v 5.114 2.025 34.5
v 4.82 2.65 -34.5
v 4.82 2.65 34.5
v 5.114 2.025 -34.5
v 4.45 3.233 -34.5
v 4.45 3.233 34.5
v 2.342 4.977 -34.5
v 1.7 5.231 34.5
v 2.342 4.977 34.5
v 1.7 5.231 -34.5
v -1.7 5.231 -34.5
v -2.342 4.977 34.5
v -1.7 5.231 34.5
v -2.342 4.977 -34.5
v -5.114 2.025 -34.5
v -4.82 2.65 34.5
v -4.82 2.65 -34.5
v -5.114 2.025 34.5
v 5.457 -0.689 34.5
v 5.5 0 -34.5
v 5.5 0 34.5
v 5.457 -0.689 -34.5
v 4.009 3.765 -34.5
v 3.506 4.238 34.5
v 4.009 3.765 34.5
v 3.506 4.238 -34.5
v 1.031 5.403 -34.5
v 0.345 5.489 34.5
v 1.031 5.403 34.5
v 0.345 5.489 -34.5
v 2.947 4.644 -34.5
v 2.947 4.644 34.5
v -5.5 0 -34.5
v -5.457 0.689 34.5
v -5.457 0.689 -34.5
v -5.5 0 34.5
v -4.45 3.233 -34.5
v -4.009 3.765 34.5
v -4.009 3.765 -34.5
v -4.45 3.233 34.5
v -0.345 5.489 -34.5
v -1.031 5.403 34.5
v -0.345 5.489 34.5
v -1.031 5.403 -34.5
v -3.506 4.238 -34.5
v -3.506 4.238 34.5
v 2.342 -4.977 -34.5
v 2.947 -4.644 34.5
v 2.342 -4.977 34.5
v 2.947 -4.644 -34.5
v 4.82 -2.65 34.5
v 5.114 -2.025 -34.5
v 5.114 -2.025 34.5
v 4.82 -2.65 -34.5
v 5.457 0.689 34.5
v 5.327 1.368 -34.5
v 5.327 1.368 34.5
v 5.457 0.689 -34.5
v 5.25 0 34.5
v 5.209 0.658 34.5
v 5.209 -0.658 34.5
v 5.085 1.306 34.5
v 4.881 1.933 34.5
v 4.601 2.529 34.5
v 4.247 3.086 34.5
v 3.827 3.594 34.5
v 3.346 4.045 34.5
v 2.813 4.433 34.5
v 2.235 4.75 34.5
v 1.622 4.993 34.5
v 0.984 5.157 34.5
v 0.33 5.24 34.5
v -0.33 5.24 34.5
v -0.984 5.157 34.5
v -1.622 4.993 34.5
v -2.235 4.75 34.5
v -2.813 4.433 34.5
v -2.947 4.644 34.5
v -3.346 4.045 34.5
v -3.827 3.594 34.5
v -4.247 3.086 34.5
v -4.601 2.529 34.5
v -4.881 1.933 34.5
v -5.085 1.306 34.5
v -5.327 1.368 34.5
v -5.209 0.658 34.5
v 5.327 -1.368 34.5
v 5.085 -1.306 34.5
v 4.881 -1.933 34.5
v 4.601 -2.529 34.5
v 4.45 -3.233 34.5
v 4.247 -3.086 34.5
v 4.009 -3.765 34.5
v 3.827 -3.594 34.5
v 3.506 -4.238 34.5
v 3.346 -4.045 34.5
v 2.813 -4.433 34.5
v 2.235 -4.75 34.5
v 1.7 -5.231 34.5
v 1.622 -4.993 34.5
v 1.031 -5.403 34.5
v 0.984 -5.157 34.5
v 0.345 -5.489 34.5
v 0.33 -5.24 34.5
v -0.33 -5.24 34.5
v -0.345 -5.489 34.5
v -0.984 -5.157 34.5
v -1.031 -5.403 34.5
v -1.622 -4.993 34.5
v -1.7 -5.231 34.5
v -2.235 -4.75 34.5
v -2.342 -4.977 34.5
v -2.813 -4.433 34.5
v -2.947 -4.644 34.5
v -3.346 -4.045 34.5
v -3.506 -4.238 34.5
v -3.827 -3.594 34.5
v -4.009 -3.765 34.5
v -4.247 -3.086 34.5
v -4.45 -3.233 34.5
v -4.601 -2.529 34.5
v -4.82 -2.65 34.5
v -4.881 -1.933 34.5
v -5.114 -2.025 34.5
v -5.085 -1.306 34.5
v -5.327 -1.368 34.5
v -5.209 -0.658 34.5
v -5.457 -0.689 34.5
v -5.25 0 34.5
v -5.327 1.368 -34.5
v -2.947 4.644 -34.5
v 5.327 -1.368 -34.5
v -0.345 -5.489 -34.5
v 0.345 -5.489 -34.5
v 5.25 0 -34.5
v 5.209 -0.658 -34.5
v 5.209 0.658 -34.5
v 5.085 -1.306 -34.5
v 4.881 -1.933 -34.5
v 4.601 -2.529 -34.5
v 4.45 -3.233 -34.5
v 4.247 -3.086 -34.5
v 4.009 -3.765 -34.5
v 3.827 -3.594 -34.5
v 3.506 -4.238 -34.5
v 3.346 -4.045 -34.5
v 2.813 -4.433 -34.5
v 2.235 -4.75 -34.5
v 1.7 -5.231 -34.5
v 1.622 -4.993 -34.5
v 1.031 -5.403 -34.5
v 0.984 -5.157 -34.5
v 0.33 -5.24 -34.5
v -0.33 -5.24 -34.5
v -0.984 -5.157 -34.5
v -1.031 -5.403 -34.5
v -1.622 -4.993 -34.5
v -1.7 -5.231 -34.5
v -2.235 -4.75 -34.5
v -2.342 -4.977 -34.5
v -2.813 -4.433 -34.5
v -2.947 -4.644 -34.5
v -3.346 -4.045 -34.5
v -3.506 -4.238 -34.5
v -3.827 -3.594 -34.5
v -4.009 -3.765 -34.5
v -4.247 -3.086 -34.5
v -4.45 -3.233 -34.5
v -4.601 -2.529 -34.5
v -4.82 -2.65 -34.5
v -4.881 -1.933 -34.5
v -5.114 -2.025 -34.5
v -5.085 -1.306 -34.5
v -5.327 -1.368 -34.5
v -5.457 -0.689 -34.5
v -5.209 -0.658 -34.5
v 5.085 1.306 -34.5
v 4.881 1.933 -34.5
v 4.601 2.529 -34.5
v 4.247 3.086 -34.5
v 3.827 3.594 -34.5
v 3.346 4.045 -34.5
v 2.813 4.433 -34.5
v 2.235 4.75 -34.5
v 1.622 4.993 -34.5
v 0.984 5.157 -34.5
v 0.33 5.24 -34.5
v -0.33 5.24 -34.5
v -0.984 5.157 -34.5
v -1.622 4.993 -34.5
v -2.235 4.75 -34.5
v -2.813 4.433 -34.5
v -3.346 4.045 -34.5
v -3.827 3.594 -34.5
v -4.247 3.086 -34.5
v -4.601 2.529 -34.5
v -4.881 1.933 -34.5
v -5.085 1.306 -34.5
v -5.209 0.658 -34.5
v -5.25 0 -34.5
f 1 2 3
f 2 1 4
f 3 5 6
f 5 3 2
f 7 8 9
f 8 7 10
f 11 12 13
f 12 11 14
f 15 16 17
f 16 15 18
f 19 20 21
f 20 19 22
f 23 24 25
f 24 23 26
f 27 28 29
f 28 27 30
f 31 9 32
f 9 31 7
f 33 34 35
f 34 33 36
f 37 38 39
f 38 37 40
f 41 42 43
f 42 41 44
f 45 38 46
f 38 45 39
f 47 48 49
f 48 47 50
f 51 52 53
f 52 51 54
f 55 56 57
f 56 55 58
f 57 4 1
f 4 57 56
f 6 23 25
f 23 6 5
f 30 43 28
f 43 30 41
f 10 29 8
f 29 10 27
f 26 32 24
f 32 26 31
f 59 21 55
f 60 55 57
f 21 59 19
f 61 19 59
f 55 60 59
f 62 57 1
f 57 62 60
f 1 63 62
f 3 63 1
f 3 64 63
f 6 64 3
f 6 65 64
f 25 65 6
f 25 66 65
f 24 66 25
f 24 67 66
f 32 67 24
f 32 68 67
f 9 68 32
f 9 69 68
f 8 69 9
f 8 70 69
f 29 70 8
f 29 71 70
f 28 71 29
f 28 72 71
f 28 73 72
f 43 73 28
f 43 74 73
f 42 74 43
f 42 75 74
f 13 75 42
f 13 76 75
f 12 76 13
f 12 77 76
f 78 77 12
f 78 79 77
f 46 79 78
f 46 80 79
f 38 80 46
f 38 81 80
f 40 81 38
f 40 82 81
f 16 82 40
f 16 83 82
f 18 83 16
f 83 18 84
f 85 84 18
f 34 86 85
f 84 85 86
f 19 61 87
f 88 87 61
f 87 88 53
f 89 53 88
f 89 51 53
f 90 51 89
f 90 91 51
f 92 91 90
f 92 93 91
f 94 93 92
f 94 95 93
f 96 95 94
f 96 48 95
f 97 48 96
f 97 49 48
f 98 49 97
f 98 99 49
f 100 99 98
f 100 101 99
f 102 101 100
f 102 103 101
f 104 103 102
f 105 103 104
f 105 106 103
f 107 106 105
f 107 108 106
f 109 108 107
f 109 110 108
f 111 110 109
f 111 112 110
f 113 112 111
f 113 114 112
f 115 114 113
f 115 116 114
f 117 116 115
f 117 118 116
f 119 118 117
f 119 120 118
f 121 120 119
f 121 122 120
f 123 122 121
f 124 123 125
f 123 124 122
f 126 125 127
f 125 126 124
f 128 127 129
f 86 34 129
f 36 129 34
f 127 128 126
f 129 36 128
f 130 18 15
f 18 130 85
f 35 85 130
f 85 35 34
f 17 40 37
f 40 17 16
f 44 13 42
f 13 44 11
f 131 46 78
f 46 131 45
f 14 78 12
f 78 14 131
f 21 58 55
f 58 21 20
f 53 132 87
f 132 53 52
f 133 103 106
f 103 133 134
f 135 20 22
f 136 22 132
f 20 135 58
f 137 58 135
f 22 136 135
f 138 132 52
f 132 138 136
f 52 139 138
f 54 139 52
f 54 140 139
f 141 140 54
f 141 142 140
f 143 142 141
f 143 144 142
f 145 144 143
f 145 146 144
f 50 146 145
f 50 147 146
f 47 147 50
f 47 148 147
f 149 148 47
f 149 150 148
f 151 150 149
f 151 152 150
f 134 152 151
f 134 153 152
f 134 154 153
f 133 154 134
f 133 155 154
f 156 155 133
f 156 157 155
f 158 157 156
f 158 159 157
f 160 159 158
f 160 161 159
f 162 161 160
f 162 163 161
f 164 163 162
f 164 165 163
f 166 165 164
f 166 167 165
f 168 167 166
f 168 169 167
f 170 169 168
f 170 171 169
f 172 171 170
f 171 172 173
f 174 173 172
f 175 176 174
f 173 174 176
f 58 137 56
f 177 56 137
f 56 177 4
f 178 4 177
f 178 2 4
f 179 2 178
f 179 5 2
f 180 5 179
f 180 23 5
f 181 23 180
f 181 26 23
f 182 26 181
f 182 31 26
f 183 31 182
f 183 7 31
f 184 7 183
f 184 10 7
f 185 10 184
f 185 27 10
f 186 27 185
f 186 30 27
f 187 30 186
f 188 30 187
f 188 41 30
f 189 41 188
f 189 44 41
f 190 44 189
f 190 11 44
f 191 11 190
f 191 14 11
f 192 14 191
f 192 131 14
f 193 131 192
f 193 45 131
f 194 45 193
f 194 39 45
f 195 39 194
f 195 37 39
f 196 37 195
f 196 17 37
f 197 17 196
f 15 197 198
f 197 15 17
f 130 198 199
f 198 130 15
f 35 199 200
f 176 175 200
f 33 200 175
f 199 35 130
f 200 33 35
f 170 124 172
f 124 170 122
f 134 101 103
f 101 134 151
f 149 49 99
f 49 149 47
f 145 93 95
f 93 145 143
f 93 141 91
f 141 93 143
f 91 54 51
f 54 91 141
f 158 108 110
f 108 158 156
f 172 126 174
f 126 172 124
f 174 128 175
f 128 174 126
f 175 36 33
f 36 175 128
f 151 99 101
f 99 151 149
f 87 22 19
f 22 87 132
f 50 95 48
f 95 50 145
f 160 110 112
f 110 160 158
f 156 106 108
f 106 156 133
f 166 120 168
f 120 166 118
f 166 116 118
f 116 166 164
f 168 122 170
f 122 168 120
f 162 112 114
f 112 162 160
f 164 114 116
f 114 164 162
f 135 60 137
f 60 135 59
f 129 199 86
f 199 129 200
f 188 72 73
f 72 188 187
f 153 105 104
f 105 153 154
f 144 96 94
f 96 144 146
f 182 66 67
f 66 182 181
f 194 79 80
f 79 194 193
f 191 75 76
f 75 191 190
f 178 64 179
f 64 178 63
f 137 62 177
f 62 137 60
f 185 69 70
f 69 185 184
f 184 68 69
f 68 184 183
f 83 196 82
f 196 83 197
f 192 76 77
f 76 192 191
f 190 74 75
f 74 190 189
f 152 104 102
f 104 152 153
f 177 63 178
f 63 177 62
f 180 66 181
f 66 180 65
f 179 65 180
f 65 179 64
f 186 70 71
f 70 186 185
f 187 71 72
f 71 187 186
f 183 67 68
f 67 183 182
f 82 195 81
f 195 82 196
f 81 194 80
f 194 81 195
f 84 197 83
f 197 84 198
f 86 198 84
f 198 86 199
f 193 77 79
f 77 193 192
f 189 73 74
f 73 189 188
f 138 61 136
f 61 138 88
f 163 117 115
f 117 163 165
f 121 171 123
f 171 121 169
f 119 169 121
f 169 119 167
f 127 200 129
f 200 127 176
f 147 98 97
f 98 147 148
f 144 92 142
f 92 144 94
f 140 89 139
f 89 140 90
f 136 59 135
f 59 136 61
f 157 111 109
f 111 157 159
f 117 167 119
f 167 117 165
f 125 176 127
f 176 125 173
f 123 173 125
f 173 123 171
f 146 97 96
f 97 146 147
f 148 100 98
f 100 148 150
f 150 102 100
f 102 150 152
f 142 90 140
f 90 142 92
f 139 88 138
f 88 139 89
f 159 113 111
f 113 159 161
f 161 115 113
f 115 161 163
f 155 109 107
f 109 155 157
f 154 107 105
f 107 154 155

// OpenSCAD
$fn = 50;


difference() {
	union() {
		translate(v = [0, 0, -34.5000000000]) {
			cylinder(h = 69, r = 5.5000000000);
		}
	}
	union() {
		translate(v = [0, 0, -100.0000000000]) {
			cylinder(h = 200, r = 5.2500000000);
		}
	}
}
